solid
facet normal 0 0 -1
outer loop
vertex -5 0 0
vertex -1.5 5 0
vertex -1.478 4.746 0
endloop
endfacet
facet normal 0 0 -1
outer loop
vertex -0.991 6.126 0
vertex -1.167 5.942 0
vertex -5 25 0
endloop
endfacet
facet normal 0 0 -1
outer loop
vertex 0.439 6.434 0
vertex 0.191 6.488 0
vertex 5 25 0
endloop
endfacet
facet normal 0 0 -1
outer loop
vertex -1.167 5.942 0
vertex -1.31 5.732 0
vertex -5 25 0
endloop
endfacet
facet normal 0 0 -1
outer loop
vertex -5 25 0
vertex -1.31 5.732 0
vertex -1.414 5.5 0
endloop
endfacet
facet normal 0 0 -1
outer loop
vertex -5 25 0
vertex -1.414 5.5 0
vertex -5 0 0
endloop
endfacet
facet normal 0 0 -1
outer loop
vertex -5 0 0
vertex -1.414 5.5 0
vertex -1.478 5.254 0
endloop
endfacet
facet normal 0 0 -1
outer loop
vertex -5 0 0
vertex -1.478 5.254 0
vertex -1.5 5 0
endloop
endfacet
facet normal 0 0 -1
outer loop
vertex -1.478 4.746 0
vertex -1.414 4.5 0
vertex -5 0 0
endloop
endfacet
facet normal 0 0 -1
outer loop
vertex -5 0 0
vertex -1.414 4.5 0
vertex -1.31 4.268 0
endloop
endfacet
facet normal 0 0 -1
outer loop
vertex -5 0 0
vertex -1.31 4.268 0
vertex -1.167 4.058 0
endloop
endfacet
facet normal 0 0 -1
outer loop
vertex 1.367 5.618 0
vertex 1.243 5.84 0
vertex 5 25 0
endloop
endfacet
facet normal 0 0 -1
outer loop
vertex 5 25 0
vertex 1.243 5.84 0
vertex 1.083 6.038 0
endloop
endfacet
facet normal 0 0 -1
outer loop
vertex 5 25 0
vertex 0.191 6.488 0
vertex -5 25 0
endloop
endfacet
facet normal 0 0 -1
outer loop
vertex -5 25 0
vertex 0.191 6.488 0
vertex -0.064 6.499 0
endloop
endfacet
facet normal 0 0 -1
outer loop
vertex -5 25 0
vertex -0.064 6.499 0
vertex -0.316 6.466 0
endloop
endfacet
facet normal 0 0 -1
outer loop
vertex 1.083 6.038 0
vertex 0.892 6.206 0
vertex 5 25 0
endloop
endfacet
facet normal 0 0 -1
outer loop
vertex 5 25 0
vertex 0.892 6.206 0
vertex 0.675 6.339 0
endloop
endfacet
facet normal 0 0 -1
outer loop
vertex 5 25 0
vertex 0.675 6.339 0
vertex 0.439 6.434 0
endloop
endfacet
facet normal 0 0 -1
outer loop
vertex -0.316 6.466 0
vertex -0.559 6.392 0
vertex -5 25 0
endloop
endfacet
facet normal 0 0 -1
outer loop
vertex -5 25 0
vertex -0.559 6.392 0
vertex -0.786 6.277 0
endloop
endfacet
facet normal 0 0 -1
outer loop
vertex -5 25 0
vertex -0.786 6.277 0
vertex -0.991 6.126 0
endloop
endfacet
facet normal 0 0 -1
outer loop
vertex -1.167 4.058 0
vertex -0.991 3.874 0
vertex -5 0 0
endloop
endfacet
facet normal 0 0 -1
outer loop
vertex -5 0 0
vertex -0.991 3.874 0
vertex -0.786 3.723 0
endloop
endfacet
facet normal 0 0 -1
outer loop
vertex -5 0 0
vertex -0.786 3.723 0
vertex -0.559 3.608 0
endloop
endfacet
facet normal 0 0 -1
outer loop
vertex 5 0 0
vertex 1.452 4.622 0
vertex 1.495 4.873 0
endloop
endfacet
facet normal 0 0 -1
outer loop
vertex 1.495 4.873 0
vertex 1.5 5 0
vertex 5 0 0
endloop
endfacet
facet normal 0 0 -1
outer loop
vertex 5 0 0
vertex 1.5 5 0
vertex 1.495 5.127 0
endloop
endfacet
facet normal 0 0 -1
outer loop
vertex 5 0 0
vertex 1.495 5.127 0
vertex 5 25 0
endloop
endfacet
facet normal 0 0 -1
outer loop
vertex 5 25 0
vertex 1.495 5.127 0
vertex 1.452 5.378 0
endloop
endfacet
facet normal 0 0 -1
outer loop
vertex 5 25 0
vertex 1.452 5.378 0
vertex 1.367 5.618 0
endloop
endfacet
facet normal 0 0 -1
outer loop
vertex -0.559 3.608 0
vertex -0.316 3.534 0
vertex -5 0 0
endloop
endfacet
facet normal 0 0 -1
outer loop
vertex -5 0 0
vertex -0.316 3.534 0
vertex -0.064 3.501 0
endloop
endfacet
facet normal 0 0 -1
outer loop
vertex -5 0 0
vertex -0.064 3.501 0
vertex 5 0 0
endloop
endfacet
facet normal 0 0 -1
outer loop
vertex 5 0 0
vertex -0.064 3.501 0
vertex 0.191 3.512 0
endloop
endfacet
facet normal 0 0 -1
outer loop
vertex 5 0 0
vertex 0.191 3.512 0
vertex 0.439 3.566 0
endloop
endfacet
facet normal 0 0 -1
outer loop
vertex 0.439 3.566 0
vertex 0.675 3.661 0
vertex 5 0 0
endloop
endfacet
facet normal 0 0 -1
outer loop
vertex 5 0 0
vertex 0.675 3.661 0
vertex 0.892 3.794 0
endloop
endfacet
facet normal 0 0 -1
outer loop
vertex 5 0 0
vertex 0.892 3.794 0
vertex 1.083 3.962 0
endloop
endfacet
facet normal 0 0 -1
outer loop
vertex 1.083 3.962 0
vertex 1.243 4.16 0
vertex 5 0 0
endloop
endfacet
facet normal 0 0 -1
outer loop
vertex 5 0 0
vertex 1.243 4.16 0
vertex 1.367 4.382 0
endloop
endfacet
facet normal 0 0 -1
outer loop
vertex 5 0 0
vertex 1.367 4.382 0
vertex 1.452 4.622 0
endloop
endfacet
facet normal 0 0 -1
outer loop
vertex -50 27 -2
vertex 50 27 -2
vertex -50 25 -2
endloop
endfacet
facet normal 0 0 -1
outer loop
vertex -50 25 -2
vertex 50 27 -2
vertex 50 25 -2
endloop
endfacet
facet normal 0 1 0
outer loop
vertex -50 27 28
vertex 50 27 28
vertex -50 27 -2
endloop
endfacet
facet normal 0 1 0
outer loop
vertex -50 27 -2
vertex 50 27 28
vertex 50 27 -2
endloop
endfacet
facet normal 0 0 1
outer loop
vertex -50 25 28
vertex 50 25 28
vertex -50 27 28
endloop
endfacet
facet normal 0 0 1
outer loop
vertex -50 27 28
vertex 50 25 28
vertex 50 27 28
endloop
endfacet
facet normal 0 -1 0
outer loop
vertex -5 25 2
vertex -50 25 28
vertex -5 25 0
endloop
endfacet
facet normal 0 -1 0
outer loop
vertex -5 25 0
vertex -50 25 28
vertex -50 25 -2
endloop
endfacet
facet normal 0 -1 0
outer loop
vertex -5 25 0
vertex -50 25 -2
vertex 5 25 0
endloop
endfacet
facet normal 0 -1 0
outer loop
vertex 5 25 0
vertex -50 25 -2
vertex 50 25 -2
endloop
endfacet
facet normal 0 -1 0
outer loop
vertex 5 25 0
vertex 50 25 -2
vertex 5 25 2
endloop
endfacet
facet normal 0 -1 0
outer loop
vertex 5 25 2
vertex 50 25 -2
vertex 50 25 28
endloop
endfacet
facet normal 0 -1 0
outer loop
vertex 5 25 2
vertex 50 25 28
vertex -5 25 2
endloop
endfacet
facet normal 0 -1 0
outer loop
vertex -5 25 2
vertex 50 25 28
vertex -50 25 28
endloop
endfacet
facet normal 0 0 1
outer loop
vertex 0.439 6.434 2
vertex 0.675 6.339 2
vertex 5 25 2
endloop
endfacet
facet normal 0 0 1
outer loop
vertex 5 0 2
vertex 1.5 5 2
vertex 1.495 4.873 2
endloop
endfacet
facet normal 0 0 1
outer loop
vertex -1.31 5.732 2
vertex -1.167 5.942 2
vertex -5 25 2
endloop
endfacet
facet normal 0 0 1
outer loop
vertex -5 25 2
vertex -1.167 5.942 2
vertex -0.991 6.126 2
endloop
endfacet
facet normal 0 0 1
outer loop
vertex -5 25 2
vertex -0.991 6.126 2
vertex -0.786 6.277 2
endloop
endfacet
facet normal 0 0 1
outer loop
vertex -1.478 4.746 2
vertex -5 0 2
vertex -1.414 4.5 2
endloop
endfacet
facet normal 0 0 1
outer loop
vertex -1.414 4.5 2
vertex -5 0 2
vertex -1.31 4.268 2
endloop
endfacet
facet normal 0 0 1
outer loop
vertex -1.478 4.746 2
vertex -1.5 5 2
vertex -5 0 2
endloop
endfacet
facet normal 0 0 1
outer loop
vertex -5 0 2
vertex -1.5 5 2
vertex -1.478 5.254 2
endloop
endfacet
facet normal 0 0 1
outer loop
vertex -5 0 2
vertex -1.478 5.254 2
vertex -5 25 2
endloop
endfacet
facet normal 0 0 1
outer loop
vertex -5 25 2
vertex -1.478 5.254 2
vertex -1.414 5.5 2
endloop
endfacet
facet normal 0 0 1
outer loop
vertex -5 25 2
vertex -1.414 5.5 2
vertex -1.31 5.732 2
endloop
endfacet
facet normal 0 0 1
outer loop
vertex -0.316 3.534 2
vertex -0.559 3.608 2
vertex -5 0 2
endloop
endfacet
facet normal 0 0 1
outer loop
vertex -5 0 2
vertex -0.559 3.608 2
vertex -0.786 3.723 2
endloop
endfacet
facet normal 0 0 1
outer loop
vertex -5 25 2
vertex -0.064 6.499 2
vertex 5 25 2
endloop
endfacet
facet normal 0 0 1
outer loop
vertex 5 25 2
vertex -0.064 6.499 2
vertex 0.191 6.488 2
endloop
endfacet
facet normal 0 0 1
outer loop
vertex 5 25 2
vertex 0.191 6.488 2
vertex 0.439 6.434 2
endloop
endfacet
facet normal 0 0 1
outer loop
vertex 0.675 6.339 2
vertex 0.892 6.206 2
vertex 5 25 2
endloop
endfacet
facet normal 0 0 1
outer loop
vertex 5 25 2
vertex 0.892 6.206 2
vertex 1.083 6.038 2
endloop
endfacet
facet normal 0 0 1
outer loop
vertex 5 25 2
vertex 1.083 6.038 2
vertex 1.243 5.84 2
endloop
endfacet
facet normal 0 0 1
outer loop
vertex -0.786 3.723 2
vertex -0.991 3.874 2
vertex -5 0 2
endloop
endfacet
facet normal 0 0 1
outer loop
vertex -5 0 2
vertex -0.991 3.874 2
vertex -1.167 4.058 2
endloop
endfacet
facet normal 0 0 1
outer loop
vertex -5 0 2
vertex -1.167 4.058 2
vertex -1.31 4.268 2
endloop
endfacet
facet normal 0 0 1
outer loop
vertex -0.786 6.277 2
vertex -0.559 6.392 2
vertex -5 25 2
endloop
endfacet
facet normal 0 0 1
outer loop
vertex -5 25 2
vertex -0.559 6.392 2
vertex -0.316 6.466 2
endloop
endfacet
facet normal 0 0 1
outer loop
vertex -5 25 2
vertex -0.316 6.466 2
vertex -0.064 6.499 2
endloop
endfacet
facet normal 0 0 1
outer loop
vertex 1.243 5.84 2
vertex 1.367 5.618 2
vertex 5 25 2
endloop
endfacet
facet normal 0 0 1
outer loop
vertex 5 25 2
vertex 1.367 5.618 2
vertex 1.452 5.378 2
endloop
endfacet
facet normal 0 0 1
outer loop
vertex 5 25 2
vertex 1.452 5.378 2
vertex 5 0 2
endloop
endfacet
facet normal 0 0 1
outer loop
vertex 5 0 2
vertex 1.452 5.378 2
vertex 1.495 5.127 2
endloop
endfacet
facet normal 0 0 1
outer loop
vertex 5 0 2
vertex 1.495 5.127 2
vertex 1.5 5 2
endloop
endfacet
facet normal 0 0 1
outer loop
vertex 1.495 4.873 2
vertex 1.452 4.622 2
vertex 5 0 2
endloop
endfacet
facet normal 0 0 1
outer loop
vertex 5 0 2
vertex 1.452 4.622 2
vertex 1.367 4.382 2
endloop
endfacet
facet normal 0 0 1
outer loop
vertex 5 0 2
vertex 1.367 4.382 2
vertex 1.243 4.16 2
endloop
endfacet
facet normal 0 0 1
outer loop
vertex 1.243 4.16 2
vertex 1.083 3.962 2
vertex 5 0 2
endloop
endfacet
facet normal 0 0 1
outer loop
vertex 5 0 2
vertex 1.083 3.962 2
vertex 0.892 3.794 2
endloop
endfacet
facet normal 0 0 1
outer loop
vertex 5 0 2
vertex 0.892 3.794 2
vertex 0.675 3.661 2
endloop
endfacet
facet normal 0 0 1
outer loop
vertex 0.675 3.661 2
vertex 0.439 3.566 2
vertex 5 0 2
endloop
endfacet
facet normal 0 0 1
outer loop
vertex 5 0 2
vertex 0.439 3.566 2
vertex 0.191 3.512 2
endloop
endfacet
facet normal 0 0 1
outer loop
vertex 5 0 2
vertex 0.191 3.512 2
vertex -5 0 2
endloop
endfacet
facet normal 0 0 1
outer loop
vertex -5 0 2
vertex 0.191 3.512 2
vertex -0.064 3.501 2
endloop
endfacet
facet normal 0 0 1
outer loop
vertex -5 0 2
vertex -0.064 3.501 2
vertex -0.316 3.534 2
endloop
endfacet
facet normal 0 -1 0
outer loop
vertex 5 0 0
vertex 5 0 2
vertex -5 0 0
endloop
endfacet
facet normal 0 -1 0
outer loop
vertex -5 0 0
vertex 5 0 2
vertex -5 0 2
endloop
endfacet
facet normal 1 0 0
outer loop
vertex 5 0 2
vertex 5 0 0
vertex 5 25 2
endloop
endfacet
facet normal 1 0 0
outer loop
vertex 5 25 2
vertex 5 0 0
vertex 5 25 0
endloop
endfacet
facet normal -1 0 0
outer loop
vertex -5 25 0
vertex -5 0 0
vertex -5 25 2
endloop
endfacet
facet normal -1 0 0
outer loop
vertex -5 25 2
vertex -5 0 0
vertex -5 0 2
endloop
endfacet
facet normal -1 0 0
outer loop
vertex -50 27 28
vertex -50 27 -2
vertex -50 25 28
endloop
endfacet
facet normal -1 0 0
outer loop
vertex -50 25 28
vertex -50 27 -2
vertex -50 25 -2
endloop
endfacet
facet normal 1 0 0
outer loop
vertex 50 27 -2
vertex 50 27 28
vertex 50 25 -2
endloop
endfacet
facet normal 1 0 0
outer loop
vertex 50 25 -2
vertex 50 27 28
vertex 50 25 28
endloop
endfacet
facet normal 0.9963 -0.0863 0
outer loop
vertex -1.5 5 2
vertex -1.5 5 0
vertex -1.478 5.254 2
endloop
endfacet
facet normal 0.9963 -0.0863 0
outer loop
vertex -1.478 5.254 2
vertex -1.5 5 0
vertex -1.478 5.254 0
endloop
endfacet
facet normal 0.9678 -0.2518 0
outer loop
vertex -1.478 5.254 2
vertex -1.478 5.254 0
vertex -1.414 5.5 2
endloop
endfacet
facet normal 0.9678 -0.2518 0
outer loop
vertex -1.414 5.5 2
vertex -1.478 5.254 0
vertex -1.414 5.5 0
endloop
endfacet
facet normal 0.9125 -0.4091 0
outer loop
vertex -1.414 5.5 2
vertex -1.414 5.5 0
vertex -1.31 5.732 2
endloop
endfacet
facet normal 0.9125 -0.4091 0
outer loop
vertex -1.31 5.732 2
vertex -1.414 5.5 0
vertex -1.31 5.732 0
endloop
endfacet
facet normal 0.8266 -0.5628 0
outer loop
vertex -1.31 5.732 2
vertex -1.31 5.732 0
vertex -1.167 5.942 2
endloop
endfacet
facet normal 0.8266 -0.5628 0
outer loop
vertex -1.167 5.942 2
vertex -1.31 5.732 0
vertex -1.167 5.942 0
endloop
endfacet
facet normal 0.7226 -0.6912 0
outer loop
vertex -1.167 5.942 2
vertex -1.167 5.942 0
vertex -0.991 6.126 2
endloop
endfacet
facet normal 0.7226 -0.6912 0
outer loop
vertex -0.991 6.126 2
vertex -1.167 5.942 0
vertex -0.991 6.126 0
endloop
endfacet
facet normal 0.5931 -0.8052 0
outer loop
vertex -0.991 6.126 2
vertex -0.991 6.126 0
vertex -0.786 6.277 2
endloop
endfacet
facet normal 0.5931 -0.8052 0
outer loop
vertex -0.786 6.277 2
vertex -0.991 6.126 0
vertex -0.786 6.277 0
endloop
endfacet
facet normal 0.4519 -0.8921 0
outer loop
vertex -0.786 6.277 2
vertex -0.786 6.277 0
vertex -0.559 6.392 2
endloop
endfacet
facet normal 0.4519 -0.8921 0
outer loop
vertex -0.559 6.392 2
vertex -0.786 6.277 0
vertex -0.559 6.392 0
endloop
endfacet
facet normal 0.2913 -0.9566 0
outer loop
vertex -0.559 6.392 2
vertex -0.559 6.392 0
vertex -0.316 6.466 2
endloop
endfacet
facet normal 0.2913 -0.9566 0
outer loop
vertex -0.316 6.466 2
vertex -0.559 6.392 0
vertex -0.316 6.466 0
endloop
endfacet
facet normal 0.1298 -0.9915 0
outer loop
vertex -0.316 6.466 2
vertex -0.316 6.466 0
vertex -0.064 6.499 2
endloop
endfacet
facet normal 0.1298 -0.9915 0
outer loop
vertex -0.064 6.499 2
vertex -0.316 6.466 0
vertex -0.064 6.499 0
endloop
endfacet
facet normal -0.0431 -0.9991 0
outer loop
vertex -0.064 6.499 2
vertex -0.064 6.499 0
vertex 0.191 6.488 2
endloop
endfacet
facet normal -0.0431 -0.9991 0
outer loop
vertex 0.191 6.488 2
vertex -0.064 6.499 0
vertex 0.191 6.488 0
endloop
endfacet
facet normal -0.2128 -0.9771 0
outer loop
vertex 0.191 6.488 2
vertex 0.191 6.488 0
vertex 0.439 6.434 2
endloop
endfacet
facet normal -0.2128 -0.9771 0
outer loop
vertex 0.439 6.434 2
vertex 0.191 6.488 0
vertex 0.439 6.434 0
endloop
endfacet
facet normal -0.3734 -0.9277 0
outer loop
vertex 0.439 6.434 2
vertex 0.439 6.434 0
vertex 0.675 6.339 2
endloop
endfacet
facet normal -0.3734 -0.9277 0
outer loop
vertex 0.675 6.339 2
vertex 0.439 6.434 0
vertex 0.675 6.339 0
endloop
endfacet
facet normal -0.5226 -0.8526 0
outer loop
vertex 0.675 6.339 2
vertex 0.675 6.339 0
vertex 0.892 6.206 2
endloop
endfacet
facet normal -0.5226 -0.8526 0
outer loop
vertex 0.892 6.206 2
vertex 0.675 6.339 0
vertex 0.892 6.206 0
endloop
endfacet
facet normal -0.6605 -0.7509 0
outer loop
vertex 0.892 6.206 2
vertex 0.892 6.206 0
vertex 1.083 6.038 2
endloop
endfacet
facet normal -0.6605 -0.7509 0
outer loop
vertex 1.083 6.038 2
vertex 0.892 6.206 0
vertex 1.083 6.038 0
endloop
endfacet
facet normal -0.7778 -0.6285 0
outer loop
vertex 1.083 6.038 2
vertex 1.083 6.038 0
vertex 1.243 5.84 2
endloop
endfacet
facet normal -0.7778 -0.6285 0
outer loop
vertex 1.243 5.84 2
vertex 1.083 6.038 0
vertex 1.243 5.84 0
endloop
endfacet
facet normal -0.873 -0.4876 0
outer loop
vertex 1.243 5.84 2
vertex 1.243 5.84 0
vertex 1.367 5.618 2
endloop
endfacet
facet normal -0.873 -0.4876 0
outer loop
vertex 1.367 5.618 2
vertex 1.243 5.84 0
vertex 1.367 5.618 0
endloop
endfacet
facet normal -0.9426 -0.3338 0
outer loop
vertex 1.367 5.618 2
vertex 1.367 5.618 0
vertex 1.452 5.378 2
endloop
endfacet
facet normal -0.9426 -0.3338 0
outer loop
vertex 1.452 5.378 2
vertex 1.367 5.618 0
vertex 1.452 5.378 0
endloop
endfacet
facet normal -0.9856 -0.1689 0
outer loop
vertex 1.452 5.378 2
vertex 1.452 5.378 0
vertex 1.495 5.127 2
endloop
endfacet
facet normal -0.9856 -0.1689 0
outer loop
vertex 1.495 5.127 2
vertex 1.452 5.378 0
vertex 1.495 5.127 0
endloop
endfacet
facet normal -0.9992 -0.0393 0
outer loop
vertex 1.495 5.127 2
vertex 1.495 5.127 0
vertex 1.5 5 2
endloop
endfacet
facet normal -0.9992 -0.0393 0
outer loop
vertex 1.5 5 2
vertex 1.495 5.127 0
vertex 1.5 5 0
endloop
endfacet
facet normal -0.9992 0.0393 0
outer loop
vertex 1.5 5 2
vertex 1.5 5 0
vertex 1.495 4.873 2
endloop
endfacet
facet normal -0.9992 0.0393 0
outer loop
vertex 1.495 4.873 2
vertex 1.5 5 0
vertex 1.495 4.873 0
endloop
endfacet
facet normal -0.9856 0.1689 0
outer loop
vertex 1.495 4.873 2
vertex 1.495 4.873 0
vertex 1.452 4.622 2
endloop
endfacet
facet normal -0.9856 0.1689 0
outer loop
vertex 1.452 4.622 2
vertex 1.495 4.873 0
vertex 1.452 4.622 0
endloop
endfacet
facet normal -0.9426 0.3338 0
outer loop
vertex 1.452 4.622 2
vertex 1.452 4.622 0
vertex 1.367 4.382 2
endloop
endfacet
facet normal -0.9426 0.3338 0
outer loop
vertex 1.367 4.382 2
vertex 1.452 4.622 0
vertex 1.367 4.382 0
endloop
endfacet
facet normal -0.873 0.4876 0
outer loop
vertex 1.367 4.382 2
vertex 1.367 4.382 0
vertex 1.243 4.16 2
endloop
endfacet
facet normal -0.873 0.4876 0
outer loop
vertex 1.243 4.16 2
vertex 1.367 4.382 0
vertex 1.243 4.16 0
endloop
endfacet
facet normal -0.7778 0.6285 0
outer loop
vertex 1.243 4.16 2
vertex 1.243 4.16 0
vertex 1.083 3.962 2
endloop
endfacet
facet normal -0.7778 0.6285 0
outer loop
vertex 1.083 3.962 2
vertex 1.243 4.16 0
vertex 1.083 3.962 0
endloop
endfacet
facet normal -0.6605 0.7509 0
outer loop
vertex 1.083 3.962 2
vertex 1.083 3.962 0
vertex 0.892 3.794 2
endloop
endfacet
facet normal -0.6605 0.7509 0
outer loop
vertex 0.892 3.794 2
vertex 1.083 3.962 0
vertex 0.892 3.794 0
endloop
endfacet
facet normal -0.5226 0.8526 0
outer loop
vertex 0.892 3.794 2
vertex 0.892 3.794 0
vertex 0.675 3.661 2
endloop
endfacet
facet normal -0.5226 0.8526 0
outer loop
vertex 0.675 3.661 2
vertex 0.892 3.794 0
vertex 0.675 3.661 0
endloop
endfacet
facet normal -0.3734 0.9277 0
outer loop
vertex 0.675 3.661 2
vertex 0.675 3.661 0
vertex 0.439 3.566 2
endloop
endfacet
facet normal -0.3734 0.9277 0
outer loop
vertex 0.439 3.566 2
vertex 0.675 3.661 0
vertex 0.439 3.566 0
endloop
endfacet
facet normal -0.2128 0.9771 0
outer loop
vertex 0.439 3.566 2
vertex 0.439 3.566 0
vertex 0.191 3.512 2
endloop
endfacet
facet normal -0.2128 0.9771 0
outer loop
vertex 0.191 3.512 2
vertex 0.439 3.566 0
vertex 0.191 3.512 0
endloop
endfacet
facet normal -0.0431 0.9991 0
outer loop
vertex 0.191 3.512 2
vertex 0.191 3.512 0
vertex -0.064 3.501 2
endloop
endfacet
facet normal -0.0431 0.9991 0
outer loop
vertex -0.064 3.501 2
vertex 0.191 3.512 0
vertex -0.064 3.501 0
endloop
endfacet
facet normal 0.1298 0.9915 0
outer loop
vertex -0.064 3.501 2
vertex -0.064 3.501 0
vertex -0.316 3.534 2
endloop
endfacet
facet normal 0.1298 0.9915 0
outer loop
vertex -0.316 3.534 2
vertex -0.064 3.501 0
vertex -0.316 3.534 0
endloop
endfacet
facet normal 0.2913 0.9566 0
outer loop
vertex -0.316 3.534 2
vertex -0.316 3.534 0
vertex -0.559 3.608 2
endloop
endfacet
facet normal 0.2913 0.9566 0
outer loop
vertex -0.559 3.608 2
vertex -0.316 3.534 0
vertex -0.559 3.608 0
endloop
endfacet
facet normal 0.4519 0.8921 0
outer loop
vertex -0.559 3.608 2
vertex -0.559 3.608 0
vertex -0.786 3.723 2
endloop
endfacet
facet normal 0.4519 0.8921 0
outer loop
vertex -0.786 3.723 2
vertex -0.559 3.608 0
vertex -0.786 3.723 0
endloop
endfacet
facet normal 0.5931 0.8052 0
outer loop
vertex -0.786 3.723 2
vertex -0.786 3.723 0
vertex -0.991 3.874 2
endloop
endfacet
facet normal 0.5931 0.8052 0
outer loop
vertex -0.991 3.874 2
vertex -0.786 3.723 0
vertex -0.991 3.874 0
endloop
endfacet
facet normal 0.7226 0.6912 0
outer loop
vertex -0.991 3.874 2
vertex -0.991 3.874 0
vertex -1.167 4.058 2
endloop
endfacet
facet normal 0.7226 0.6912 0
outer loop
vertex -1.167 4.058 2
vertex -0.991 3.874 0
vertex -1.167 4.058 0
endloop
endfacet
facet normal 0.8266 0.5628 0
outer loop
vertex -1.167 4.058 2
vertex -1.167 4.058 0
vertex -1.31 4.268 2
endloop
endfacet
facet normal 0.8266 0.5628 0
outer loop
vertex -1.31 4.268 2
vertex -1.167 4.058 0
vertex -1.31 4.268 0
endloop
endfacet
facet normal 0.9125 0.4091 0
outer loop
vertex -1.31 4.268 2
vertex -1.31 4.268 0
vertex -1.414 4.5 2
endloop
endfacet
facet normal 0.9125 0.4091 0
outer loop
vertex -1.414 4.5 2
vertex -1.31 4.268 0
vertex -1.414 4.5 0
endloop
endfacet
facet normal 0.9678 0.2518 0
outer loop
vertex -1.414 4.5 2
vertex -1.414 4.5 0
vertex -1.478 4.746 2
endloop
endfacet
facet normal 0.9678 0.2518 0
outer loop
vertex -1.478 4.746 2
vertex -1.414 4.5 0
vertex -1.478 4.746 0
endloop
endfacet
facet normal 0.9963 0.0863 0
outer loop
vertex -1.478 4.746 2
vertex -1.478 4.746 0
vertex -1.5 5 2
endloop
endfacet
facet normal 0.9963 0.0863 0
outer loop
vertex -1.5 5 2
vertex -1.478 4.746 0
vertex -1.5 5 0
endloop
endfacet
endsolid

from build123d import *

# Parameters (mm, degrees)
BOSS_EXTRUDE1_DEPTH     = 5
BOSS_EXTRUDE2_DEPTH     = 50
CUT_EXTRUDE1_DEPTH      = 64.348243859
CUT_EXTRUDE1_DEPTH_BACK = 64.348243859
SKETCH2_R               = 1.5


with BuildPart() as part:
    # Sketch1 → Boss-Extrude1 (new, symmetric)
    with BuildSketch(Plane(origin=(0, 0, 0), x_dir=(0, 0, -1), z_dir=(1, 0, 0))):
        Polygon((-2, 0), (0, 0), (0, 25), (2, 25), (2, 27), (-28, 27), (-28, 25), (-2, 25), align=None)
    extrude(amount=BOSS_EXTRUDE1_DEPTH, both=True)

    # Sketch1<3> → Boss-Extrude2 (add, symmetric)
    with BuildSketch(Plane(origin=(0, 0, 0), x_dir=(0, 0, -1), z_dir=(1, 0, 0))):
        Polygon((-2, 25), (0, 25), (2, 25), (2, 27), (-28, 27), (-28, 25), align=None)
    extrude(amount=BOSS_EXTRUDE2_DEPTH, both=True)

    # Sketch2 → Cut-Extrude1 (cut, two sides: drawn at the far end of the back side and taken through both)
    with BuildSketch(Plane(origin=(0, 0, 0), x_dir=(-1, 0, 0), z_dir=(0, 0, -1)).offset(-CUT_EXTRUDE1_DEPTH_BACK)):
        with Locations((0, 5)):
            Circle(SKETCH2_R)
    extrude(amount=CUT_EXTRUDE1_DEPTH + CUT_EXTRUDE1_DEPTH_BACK, mode=Mode.SUBTRACT)


solid = part.part
